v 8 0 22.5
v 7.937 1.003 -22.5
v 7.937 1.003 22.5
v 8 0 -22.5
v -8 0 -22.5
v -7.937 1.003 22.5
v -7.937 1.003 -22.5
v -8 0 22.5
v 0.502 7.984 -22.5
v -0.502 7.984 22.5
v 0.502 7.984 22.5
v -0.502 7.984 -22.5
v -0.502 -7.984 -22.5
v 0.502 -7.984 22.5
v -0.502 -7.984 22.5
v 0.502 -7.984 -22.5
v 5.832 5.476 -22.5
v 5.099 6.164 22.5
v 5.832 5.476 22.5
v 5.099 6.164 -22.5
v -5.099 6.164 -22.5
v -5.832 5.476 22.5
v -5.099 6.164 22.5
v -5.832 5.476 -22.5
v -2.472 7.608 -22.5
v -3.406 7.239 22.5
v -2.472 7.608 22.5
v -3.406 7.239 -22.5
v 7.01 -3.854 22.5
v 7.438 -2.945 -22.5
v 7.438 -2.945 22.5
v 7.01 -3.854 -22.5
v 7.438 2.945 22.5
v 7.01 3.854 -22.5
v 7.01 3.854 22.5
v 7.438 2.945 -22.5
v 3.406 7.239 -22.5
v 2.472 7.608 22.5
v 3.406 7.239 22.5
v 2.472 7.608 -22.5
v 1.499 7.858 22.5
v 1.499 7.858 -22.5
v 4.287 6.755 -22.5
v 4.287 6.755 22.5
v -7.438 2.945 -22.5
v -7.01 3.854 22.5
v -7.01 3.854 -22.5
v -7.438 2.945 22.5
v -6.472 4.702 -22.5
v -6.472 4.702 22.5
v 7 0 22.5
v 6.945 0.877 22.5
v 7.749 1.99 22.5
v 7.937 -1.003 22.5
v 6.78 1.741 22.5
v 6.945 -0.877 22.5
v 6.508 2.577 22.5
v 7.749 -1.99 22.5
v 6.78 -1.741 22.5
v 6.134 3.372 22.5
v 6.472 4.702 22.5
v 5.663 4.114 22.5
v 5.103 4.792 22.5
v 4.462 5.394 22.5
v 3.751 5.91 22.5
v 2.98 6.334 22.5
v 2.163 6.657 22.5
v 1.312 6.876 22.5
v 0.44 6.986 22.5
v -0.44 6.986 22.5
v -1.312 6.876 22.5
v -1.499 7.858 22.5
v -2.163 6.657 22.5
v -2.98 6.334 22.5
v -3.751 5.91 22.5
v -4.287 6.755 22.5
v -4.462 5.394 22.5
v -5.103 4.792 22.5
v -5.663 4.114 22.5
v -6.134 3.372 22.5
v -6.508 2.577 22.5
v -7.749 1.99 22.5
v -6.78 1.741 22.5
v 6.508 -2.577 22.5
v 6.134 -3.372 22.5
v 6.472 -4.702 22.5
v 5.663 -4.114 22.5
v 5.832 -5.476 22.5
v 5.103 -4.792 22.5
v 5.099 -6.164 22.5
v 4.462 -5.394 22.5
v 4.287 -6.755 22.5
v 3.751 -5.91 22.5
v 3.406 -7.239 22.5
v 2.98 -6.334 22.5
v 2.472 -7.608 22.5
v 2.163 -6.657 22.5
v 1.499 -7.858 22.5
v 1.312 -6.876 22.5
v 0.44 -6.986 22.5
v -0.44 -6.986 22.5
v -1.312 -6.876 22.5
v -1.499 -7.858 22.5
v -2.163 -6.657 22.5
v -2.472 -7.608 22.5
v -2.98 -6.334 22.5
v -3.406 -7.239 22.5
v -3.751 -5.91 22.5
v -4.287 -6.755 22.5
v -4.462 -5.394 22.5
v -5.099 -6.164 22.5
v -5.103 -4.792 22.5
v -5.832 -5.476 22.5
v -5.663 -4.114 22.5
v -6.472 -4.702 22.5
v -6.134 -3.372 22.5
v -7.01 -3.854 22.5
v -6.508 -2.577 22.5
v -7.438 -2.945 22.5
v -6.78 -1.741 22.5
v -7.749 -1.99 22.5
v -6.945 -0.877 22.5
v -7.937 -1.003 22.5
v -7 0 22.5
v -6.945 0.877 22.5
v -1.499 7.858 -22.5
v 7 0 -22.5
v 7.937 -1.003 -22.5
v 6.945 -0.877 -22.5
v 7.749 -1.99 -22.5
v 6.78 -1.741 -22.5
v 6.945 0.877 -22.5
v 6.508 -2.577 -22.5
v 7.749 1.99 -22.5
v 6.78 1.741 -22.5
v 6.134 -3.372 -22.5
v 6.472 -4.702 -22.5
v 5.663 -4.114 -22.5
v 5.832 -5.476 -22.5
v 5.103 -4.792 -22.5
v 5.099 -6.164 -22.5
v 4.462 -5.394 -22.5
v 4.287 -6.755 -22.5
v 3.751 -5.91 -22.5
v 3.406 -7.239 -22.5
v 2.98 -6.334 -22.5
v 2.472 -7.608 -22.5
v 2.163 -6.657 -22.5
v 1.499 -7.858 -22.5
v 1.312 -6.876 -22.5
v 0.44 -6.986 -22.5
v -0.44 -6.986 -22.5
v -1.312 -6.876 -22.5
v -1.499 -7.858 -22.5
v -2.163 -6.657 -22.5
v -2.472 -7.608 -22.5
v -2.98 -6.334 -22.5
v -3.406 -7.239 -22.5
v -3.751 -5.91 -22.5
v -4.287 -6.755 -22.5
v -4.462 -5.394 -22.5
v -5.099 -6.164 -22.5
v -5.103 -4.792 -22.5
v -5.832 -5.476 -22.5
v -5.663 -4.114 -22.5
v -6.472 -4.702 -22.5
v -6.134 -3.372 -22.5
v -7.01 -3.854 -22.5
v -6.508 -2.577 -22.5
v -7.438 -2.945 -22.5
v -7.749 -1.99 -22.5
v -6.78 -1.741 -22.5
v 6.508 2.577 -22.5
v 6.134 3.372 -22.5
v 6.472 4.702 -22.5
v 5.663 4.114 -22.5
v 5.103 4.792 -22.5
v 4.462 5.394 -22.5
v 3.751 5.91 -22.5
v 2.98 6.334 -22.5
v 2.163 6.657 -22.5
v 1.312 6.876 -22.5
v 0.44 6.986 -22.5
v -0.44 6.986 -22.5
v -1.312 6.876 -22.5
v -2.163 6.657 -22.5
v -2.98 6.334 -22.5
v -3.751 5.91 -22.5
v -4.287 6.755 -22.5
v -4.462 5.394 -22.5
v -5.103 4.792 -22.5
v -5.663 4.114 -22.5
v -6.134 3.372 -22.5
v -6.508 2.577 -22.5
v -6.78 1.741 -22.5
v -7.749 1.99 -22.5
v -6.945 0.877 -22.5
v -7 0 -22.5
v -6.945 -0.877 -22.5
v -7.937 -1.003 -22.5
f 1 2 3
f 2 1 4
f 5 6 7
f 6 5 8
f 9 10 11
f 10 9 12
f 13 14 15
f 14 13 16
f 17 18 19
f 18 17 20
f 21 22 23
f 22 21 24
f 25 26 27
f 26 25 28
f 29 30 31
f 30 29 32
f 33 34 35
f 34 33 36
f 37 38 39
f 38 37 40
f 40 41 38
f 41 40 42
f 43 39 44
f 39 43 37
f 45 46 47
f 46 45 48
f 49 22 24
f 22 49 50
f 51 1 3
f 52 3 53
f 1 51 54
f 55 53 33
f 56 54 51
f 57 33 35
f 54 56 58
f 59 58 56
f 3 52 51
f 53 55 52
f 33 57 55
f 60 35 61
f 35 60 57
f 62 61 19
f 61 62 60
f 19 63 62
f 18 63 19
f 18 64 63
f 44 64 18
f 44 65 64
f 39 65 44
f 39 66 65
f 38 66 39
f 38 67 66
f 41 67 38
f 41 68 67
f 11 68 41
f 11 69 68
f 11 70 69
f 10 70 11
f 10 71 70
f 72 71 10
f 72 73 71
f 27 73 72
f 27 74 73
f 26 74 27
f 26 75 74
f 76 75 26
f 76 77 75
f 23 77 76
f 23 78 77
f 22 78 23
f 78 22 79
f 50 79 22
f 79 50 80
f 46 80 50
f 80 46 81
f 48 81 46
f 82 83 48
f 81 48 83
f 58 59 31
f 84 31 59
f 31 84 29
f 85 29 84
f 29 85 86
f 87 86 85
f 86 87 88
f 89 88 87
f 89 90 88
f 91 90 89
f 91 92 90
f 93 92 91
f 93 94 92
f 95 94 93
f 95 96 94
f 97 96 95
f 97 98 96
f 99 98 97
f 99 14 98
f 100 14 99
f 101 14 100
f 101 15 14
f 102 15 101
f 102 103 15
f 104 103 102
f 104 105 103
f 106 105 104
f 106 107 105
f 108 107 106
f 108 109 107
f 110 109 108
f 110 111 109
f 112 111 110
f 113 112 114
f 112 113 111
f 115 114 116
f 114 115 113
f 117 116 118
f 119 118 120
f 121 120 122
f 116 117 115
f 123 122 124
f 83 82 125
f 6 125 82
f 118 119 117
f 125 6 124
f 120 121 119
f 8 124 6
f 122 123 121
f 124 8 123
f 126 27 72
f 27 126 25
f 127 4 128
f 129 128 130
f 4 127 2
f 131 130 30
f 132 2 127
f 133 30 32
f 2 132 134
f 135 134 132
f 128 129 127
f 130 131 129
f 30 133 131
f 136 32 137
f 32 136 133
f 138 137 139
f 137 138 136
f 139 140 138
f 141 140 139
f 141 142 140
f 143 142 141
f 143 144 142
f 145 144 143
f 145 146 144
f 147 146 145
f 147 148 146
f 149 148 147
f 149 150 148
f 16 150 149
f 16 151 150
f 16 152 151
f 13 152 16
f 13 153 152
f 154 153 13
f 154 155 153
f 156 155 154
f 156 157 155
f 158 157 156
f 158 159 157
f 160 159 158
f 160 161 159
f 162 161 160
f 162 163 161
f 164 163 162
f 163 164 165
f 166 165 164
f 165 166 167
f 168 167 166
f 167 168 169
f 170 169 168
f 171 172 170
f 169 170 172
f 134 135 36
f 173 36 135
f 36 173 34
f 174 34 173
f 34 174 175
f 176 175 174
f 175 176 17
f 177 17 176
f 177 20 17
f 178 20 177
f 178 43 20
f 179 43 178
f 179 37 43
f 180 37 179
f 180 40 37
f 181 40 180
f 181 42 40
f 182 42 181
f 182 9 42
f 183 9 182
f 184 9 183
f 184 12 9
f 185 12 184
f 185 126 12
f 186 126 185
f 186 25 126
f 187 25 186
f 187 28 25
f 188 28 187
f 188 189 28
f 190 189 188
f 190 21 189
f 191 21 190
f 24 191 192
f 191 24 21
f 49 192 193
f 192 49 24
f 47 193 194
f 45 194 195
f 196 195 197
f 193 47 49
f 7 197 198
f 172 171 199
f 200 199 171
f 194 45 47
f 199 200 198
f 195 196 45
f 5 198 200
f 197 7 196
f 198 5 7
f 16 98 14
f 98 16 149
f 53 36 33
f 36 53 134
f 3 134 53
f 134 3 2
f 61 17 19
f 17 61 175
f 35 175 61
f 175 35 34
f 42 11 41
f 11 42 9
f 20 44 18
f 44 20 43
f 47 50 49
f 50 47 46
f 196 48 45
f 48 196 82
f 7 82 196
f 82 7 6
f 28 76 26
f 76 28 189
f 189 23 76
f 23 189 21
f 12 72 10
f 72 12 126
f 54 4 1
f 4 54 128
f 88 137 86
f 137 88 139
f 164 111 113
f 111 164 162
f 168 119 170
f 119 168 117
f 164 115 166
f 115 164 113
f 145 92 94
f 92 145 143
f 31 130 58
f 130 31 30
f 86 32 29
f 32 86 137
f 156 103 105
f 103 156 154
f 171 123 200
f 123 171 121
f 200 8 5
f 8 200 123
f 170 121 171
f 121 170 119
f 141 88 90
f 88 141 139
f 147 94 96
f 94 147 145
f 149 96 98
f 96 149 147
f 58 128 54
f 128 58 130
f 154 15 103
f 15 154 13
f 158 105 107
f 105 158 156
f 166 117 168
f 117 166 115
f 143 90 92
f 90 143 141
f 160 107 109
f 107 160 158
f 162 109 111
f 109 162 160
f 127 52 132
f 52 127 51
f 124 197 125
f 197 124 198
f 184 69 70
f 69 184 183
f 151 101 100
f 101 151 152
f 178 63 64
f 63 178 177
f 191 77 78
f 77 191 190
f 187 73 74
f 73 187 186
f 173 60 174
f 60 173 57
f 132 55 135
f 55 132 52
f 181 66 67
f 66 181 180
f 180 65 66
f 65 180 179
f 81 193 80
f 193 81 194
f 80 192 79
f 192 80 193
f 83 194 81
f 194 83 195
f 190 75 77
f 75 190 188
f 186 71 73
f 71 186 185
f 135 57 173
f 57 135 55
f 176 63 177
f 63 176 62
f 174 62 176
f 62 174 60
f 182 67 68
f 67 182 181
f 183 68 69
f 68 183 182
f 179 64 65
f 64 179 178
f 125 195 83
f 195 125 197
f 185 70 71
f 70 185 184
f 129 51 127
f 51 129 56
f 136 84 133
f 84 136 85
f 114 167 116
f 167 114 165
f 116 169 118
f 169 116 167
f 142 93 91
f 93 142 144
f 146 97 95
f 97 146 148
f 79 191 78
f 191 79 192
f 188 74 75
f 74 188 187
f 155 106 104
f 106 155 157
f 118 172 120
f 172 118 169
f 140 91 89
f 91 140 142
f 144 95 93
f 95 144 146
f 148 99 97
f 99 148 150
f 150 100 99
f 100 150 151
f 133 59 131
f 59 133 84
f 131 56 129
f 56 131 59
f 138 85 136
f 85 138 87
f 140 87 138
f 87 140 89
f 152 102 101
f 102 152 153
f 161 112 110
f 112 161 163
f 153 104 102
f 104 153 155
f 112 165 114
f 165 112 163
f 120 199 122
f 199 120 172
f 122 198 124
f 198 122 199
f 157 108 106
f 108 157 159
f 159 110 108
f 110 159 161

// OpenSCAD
$fn = 50;


difference() {
	union() {
		translate(v = [0, 0, -22.5000000000]) {
			cylinder(h = 45, r = 8.0000000000);
		}
	}
	union() {
		translate(v = [0, 0, -100.0000000000]) {
			cylinder(h = 200, r = 7);
		}
	}
}
